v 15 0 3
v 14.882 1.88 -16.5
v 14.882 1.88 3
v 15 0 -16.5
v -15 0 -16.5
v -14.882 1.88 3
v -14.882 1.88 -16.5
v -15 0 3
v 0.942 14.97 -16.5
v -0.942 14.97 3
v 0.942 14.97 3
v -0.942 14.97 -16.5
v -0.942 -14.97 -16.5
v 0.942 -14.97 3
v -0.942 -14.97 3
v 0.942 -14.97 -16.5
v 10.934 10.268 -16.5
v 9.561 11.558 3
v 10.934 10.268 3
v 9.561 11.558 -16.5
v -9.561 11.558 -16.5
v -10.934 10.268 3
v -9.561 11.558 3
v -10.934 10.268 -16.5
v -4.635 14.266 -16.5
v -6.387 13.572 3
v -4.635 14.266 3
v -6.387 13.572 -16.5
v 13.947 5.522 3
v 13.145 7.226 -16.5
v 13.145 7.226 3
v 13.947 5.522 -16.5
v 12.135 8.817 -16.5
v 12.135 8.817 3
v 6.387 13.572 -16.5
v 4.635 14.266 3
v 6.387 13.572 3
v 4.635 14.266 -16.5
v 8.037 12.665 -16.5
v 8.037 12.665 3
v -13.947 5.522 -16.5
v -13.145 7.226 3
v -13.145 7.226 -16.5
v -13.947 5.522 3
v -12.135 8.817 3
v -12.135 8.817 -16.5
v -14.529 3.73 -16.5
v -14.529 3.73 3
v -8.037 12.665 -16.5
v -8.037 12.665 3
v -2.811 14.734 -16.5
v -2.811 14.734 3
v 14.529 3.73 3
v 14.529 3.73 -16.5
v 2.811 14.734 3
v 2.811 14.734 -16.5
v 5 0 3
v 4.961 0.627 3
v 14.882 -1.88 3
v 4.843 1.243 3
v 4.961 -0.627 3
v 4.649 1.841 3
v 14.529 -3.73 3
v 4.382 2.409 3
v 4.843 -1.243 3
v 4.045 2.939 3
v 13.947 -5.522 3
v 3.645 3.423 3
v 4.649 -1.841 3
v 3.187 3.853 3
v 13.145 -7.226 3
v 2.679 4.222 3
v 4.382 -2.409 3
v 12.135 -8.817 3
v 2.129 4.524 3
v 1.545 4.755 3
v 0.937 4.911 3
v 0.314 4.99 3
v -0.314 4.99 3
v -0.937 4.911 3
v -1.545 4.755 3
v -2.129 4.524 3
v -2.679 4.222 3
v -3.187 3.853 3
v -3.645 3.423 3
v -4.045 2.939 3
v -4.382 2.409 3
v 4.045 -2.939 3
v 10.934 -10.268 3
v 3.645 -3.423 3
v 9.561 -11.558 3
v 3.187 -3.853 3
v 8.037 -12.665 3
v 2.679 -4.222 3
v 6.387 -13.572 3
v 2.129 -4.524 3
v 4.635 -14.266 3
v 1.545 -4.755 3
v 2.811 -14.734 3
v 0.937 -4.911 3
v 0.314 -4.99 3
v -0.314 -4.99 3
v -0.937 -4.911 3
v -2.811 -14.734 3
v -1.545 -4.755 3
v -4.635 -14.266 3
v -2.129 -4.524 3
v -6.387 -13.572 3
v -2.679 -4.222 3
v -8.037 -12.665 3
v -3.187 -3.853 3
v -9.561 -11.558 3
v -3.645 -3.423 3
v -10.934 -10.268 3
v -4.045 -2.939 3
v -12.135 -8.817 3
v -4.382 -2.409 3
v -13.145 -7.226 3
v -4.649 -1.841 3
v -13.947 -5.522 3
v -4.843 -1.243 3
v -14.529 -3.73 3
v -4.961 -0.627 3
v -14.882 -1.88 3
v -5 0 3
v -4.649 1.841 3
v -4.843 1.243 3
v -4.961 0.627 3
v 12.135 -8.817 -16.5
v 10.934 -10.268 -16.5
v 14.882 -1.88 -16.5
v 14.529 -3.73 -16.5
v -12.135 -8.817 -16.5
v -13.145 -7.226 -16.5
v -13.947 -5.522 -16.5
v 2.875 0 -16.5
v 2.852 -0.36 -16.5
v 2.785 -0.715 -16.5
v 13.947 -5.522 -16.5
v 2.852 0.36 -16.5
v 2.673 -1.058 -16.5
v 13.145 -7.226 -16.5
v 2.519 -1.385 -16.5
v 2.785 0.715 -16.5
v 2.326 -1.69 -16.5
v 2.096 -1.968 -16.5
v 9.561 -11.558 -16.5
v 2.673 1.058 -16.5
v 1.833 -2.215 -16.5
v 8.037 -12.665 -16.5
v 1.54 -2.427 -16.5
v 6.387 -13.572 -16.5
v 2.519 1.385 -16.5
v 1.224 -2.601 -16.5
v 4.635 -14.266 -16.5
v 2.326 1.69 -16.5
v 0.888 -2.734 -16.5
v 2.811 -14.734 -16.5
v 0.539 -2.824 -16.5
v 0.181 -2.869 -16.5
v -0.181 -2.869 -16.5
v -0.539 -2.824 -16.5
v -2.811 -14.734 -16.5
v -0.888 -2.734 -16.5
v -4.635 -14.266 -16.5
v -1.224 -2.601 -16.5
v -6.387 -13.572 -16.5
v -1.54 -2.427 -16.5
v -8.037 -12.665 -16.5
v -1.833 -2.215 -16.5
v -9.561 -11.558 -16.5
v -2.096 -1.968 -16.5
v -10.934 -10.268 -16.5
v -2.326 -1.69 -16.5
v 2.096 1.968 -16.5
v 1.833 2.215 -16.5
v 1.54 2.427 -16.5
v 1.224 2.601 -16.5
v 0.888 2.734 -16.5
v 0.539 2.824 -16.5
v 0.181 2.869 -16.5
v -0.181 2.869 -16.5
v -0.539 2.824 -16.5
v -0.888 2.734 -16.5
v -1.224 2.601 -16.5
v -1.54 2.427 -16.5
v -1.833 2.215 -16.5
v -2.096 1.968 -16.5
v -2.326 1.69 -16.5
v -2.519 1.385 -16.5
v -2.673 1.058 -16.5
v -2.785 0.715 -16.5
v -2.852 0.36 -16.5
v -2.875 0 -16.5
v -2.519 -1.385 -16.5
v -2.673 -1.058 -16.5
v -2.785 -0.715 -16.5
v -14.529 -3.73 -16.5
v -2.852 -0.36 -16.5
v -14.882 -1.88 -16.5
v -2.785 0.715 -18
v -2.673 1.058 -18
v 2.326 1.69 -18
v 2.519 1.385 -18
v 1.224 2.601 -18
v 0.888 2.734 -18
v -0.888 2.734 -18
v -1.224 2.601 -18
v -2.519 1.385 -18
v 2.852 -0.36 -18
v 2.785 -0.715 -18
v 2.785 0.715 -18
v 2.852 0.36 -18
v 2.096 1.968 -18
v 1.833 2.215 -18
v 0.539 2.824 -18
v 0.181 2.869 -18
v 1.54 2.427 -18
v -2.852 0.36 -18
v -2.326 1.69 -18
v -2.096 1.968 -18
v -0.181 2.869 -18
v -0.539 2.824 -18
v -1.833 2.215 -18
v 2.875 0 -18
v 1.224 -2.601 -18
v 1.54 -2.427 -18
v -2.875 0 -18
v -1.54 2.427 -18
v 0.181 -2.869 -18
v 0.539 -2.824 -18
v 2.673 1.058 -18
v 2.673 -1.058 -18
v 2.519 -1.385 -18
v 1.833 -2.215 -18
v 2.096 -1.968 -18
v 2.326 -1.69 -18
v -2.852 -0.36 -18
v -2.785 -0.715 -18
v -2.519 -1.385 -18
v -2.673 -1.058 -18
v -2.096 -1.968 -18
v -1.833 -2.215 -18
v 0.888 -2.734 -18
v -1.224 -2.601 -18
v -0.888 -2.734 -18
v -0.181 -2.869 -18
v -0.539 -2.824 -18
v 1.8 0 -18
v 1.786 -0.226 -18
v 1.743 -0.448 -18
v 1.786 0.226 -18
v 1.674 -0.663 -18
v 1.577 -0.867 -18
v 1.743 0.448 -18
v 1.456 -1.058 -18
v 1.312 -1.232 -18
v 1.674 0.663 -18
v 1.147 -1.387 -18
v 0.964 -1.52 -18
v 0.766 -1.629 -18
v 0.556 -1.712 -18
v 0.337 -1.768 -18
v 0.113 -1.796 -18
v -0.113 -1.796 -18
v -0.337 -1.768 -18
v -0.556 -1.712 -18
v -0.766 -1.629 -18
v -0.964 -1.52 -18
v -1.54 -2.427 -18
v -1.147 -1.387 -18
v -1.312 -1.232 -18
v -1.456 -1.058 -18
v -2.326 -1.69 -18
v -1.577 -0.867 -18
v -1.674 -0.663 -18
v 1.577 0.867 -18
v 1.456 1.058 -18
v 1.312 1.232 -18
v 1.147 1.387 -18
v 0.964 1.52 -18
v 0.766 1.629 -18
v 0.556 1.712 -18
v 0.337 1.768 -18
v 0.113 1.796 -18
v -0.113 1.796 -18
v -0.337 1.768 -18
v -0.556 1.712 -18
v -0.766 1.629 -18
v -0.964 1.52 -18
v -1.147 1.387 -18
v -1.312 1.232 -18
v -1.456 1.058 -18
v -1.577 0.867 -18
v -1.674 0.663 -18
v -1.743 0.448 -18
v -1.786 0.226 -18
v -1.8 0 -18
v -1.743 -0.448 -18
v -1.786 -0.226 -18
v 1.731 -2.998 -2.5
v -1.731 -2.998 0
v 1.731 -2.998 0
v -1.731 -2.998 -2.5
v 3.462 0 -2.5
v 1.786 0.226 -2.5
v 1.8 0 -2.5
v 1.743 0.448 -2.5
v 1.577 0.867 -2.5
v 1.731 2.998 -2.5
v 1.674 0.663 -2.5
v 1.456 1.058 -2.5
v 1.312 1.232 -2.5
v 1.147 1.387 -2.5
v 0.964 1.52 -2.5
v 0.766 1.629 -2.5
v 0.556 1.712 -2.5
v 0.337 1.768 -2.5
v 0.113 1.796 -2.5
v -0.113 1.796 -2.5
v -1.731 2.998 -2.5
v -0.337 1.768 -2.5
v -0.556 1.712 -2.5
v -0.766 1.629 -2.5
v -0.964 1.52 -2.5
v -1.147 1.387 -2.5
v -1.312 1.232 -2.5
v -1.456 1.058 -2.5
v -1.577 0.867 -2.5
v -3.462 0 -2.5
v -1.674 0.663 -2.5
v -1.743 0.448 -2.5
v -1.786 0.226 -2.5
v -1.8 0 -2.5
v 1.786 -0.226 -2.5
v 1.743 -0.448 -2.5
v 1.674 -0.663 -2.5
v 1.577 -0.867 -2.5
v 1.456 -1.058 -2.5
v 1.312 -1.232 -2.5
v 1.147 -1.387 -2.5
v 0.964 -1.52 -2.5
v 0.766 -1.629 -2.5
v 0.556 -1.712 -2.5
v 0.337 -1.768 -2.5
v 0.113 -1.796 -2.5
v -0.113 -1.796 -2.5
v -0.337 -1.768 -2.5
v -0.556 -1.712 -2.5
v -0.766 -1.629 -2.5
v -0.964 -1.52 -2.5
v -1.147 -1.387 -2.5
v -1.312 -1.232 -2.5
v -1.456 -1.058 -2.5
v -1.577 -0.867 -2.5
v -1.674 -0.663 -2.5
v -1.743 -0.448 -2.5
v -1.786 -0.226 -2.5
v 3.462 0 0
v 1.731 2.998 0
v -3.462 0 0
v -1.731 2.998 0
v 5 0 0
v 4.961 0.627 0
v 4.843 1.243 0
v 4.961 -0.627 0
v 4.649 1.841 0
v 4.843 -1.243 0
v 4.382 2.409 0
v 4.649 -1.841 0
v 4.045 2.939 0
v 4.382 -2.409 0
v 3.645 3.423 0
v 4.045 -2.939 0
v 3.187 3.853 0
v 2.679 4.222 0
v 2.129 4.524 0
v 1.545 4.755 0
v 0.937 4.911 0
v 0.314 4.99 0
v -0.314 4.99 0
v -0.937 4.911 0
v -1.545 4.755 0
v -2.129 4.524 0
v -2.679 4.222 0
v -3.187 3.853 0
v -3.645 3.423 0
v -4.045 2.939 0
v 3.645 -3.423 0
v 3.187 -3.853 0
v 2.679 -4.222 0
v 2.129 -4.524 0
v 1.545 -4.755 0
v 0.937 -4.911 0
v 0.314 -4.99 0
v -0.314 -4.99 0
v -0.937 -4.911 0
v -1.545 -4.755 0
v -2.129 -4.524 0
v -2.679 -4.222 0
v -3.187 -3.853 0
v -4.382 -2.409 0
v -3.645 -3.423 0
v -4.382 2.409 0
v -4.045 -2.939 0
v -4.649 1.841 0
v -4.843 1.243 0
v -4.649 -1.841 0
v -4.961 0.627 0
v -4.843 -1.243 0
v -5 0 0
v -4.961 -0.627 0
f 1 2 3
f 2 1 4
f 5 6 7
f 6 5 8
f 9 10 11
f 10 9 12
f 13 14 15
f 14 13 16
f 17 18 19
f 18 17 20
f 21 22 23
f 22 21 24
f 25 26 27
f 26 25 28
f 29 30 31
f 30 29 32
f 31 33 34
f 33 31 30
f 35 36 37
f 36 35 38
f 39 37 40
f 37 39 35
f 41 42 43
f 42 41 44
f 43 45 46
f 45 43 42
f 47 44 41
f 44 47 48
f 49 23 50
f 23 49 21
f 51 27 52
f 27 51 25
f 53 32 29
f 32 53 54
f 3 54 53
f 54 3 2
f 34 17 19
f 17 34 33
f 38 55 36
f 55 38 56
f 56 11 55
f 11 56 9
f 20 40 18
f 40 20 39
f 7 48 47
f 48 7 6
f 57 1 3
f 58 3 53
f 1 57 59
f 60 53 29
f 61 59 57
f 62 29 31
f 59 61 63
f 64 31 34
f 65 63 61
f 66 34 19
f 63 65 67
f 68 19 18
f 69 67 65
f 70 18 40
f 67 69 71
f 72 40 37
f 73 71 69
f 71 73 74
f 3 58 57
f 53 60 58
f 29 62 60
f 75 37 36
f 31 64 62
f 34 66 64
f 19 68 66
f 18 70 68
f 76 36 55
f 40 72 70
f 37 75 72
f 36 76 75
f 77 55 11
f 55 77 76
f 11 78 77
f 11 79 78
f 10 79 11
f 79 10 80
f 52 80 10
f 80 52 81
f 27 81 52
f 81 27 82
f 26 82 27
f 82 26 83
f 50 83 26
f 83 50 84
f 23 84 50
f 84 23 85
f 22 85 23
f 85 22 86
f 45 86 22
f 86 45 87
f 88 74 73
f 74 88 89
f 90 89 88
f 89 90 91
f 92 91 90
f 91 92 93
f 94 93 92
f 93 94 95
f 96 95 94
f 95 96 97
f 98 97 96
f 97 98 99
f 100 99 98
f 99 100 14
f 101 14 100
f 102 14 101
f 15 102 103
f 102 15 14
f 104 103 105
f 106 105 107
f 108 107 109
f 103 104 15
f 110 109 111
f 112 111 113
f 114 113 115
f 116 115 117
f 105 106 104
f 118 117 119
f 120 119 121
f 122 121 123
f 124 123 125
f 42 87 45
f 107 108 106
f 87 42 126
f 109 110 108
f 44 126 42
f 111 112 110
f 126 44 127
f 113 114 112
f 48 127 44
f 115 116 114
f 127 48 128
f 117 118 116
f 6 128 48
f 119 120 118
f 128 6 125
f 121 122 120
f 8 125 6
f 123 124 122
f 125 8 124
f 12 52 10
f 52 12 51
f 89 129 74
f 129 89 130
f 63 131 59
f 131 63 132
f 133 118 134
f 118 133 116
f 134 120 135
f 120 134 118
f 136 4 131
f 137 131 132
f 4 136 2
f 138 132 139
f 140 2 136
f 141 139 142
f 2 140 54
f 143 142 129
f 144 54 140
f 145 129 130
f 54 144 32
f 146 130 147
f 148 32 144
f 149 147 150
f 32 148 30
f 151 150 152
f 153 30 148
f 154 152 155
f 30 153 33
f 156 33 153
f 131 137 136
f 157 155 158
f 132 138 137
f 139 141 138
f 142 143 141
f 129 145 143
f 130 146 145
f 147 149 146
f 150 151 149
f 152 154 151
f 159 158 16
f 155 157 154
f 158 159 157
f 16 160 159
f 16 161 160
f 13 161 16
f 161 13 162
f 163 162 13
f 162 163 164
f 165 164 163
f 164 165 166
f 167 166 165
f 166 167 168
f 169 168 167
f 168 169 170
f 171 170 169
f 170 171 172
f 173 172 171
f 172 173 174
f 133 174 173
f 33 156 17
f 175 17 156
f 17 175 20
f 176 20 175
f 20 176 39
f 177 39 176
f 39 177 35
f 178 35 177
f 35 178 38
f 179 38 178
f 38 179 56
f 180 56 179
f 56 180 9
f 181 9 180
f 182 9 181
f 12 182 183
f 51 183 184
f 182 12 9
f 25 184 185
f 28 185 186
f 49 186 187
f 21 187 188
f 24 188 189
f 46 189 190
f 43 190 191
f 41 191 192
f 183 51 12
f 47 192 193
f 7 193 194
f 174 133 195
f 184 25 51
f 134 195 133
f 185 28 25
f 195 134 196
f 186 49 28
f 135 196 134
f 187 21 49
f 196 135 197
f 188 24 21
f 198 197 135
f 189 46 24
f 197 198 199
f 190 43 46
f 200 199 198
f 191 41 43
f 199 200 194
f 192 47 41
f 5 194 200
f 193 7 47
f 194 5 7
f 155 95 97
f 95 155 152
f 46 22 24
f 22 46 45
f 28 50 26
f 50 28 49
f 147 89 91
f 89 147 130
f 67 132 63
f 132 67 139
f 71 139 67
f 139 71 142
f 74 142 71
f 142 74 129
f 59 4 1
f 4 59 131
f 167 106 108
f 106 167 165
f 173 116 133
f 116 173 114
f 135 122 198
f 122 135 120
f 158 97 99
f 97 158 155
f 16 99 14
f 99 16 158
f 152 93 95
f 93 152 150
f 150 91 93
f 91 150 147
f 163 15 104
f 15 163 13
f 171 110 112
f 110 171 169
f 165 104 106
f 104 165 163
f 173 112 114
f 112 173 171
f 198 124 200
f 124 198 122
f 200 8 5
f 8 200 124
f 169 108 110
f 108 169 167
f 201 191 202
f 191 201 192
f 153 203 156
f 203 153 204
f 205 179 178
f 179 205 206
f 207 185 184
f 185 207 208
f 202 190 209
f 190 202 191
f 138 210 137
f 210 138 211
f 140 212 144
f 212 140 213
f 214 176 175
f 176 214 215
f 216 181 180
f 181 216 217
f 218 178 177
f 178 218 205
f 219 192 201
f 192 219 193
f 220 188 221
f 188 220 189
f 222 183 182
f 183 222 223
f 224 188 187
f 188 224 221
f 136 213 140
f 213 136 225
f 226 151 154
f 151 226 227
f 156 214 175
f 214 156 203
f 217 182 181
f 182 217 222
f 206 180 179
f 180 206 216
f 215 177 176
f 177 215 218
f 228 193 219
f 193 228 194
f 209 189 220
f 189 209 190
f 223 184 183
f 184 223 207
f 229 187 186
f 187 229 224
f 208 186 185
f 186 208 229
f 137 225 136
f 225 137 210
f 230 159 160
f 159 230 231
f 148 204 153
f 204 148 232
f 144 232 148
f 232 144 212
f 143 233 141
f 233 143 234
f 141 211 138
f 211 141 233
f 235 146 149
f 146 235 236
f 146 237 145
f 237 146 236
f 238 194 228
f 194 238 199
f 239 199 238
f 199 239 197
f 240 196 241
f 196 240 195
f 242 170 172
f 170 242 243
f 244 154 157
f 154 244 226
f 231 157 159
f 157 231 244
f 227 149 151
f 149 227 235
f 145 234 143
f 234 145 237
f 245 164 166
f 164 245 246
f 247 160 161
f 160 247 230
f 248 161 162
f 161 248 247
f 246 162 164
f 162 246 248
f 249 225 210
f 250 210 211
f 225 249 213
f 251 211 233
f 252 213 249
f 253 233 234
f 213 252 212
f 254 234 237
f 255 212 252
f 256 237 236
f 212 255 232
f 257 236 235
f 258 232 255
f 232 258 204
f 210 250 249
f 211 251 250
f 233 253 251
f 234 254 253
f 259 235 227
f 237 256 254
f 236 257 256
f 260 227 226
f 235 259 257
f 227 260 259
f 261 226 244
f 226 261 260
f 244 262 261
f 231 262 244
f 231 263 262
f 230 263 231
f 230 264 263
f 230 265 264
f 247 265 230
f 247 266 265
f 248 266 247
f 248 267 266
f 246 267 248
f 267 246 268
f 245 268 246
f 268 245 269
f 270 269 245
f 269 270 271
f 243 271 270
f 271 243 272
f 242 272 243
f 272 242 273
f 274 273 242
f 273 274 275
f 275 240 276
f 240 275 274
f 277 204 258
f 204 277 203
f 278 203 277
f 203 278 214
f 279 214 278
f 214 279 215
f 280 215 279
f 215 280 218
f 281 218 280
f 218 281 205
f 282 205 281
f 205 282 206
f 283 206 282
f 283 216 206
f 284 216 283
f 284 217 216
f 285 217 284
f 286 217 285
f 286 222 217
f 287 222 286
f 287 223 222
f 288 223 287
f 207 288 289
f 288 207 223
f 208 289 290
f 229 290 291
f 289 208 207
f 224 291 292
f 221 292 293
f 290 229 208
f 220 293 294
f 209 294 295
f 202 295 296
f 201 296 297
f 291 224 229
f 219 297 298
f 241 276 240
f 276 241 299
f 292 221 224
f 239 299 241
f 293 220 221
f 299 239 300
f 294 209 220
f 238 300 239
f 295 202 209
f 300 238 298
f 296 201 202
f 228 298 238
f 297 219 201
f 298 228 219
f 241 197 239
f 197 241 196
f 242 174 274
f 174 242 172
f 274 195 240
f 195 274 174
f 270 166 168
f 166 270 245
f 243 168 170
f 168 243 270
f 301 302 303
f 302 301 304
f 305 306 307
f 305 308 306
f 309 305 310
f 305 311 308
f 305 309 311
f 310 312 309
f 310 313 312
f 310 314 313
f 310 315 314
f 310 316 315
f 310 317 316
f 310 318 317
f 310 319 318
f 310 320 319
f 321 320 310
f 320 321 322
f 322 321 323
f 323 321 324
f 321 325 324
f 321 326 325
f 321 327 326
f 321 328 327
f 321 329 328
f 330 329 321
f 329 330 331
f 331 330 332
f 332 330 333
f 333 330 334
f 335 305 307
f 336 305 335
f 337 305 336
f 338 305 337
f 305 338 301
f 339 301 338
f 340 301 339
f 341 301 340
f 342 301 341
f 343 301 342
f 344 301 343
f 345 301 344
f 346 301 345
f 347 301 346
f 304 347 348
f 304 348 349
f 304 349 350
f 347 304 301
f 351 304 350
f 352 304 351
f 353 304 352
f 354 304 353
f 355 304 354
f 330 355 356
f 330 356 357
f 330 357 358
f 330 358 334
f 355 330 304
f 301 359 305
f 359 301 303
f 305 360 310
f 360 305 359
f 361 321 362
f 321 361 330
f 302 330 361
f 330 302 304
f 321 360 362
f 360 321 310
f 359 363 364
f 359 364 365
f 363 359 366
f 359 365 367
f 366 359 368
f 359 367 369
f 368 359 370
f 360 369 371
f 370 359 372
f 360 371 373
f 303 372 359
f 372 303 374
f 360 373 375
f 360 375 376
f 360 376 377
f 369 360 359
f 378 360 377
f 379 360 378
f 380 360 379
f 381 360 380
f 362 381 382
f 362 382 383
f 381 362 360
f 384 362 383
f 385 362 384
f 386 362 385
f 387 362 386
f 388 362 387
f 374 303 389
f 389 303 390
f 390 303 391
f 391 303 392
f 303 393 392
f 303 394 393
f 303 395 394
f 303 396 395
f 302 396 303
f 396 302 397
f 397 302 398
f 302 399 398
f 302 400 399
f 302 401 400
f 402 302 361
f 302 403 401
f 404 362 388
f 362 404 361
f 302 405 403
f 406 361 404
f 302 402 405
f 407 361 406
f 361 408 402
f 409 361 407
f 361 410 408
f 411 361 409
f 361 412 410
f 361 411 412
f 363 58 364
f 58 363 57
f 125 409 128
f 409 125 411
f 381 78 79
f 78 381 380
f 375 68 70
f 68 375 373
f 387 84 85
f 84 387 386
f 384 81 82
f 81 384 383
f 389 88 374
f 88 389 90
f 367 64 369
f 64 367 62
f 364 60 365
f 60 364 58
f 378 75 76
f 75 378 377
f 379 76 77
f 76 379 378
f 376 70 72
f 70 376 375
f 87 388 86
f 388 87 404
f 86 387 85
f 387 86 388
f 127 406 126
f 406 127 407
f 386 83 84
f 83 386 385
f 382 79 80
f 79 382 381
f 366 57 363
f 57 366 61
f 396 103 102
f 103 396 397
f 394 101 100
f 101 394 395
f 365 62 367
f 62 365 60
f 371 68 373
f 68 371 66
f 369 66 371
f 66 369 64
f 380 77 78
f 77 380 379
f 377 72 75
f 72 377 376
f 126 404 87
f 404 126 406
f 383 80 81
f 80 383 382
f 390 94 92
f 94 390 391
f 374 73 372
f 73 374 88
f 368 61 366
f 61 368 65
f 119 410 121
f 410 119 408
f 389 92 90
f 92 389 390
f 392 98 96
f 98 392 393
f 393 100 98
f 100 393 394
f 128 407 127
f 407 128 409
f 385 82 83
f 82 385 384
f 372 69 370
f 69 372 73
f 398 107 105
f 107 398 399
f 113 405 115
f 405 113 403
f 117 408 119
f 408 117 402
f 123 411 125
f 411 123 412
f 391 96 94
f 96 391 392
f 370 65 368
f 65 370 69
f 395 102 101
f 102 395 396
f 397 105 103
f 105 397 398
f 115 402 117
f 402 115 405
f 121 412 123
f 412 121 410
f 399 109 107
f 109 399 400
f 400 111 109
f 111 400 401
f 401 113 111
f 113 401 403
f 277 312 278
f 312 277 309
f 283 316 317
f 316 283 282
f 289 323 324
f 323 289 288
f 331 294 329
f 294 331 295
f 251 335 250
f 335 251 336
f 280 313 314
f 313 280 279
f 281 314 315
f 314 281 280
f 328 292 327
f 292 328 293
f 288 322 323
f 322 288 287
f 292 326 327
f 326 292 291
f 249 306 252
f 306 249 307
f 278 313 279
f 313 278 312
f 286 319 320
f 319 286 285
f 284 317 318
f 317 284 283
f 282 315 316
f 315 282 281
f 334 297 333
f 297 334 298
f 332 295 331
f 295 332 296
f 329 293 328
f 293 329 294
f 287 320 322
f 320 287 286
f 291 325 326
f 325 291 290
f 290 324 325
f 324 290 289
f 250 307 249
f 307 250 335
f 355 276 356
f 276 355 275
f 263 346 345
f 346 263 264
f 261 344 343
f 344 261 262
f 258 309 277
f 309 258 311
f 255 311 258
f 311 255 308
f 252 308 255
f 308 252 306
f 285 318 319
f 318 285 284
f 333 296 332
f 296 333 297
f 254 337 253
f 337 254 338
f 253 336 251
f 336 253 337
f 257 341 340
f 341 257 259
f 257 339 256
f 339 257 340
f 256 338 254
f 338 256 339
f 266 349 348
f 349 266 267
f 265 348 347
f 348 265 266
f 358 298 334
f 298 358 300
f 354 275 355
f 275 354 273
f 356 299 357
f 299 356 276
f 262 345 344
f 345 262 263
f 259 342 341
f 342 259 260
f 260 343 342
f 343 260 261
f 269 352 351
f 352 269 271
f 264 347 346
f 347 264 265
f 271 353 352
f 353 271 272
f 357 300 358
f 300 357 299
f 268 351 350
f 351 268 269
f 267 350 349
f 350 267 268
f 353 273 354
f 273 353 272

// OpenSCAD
$fn = 50;

difference() {
	union() {
		translate(v = [0, 0, -16.5]) {
			cylinder(h = 19.5, r = 15.0);
		}
		#translate(v = [0, 0, -18.0]) {
			cylinder(h = 18, r = 2.875);
		}
	}
	union() {
		translate(v = [0, 0, 0]) {
			rotate(a = [0, 0, 0]) {
				difference() {
					union() {
						translate(v = [0, 0, -2.5]) {
							linear_extrude(height = 2.5) {
								polygon(points = [[3.4619999999999997, 0.0], [1.7310000000000003, 2.9981799479017264], [-1.7309999999999992, 2.9981799479017264], [-3.4619999999999997, 4.2397272186481365e-16], [-1.7310000000000014, -2.998179947901726], [1.7309999999999977, -2.9981799479017277]]);
							}
						}
					}
					union();
				}
			}
		}
		#cylinder(h = 3, r = 5.0);
		#translate(v = [0, 0, -100.0]) {
			cylinder(h = 200, r = 1.8);
		}
	}
}
